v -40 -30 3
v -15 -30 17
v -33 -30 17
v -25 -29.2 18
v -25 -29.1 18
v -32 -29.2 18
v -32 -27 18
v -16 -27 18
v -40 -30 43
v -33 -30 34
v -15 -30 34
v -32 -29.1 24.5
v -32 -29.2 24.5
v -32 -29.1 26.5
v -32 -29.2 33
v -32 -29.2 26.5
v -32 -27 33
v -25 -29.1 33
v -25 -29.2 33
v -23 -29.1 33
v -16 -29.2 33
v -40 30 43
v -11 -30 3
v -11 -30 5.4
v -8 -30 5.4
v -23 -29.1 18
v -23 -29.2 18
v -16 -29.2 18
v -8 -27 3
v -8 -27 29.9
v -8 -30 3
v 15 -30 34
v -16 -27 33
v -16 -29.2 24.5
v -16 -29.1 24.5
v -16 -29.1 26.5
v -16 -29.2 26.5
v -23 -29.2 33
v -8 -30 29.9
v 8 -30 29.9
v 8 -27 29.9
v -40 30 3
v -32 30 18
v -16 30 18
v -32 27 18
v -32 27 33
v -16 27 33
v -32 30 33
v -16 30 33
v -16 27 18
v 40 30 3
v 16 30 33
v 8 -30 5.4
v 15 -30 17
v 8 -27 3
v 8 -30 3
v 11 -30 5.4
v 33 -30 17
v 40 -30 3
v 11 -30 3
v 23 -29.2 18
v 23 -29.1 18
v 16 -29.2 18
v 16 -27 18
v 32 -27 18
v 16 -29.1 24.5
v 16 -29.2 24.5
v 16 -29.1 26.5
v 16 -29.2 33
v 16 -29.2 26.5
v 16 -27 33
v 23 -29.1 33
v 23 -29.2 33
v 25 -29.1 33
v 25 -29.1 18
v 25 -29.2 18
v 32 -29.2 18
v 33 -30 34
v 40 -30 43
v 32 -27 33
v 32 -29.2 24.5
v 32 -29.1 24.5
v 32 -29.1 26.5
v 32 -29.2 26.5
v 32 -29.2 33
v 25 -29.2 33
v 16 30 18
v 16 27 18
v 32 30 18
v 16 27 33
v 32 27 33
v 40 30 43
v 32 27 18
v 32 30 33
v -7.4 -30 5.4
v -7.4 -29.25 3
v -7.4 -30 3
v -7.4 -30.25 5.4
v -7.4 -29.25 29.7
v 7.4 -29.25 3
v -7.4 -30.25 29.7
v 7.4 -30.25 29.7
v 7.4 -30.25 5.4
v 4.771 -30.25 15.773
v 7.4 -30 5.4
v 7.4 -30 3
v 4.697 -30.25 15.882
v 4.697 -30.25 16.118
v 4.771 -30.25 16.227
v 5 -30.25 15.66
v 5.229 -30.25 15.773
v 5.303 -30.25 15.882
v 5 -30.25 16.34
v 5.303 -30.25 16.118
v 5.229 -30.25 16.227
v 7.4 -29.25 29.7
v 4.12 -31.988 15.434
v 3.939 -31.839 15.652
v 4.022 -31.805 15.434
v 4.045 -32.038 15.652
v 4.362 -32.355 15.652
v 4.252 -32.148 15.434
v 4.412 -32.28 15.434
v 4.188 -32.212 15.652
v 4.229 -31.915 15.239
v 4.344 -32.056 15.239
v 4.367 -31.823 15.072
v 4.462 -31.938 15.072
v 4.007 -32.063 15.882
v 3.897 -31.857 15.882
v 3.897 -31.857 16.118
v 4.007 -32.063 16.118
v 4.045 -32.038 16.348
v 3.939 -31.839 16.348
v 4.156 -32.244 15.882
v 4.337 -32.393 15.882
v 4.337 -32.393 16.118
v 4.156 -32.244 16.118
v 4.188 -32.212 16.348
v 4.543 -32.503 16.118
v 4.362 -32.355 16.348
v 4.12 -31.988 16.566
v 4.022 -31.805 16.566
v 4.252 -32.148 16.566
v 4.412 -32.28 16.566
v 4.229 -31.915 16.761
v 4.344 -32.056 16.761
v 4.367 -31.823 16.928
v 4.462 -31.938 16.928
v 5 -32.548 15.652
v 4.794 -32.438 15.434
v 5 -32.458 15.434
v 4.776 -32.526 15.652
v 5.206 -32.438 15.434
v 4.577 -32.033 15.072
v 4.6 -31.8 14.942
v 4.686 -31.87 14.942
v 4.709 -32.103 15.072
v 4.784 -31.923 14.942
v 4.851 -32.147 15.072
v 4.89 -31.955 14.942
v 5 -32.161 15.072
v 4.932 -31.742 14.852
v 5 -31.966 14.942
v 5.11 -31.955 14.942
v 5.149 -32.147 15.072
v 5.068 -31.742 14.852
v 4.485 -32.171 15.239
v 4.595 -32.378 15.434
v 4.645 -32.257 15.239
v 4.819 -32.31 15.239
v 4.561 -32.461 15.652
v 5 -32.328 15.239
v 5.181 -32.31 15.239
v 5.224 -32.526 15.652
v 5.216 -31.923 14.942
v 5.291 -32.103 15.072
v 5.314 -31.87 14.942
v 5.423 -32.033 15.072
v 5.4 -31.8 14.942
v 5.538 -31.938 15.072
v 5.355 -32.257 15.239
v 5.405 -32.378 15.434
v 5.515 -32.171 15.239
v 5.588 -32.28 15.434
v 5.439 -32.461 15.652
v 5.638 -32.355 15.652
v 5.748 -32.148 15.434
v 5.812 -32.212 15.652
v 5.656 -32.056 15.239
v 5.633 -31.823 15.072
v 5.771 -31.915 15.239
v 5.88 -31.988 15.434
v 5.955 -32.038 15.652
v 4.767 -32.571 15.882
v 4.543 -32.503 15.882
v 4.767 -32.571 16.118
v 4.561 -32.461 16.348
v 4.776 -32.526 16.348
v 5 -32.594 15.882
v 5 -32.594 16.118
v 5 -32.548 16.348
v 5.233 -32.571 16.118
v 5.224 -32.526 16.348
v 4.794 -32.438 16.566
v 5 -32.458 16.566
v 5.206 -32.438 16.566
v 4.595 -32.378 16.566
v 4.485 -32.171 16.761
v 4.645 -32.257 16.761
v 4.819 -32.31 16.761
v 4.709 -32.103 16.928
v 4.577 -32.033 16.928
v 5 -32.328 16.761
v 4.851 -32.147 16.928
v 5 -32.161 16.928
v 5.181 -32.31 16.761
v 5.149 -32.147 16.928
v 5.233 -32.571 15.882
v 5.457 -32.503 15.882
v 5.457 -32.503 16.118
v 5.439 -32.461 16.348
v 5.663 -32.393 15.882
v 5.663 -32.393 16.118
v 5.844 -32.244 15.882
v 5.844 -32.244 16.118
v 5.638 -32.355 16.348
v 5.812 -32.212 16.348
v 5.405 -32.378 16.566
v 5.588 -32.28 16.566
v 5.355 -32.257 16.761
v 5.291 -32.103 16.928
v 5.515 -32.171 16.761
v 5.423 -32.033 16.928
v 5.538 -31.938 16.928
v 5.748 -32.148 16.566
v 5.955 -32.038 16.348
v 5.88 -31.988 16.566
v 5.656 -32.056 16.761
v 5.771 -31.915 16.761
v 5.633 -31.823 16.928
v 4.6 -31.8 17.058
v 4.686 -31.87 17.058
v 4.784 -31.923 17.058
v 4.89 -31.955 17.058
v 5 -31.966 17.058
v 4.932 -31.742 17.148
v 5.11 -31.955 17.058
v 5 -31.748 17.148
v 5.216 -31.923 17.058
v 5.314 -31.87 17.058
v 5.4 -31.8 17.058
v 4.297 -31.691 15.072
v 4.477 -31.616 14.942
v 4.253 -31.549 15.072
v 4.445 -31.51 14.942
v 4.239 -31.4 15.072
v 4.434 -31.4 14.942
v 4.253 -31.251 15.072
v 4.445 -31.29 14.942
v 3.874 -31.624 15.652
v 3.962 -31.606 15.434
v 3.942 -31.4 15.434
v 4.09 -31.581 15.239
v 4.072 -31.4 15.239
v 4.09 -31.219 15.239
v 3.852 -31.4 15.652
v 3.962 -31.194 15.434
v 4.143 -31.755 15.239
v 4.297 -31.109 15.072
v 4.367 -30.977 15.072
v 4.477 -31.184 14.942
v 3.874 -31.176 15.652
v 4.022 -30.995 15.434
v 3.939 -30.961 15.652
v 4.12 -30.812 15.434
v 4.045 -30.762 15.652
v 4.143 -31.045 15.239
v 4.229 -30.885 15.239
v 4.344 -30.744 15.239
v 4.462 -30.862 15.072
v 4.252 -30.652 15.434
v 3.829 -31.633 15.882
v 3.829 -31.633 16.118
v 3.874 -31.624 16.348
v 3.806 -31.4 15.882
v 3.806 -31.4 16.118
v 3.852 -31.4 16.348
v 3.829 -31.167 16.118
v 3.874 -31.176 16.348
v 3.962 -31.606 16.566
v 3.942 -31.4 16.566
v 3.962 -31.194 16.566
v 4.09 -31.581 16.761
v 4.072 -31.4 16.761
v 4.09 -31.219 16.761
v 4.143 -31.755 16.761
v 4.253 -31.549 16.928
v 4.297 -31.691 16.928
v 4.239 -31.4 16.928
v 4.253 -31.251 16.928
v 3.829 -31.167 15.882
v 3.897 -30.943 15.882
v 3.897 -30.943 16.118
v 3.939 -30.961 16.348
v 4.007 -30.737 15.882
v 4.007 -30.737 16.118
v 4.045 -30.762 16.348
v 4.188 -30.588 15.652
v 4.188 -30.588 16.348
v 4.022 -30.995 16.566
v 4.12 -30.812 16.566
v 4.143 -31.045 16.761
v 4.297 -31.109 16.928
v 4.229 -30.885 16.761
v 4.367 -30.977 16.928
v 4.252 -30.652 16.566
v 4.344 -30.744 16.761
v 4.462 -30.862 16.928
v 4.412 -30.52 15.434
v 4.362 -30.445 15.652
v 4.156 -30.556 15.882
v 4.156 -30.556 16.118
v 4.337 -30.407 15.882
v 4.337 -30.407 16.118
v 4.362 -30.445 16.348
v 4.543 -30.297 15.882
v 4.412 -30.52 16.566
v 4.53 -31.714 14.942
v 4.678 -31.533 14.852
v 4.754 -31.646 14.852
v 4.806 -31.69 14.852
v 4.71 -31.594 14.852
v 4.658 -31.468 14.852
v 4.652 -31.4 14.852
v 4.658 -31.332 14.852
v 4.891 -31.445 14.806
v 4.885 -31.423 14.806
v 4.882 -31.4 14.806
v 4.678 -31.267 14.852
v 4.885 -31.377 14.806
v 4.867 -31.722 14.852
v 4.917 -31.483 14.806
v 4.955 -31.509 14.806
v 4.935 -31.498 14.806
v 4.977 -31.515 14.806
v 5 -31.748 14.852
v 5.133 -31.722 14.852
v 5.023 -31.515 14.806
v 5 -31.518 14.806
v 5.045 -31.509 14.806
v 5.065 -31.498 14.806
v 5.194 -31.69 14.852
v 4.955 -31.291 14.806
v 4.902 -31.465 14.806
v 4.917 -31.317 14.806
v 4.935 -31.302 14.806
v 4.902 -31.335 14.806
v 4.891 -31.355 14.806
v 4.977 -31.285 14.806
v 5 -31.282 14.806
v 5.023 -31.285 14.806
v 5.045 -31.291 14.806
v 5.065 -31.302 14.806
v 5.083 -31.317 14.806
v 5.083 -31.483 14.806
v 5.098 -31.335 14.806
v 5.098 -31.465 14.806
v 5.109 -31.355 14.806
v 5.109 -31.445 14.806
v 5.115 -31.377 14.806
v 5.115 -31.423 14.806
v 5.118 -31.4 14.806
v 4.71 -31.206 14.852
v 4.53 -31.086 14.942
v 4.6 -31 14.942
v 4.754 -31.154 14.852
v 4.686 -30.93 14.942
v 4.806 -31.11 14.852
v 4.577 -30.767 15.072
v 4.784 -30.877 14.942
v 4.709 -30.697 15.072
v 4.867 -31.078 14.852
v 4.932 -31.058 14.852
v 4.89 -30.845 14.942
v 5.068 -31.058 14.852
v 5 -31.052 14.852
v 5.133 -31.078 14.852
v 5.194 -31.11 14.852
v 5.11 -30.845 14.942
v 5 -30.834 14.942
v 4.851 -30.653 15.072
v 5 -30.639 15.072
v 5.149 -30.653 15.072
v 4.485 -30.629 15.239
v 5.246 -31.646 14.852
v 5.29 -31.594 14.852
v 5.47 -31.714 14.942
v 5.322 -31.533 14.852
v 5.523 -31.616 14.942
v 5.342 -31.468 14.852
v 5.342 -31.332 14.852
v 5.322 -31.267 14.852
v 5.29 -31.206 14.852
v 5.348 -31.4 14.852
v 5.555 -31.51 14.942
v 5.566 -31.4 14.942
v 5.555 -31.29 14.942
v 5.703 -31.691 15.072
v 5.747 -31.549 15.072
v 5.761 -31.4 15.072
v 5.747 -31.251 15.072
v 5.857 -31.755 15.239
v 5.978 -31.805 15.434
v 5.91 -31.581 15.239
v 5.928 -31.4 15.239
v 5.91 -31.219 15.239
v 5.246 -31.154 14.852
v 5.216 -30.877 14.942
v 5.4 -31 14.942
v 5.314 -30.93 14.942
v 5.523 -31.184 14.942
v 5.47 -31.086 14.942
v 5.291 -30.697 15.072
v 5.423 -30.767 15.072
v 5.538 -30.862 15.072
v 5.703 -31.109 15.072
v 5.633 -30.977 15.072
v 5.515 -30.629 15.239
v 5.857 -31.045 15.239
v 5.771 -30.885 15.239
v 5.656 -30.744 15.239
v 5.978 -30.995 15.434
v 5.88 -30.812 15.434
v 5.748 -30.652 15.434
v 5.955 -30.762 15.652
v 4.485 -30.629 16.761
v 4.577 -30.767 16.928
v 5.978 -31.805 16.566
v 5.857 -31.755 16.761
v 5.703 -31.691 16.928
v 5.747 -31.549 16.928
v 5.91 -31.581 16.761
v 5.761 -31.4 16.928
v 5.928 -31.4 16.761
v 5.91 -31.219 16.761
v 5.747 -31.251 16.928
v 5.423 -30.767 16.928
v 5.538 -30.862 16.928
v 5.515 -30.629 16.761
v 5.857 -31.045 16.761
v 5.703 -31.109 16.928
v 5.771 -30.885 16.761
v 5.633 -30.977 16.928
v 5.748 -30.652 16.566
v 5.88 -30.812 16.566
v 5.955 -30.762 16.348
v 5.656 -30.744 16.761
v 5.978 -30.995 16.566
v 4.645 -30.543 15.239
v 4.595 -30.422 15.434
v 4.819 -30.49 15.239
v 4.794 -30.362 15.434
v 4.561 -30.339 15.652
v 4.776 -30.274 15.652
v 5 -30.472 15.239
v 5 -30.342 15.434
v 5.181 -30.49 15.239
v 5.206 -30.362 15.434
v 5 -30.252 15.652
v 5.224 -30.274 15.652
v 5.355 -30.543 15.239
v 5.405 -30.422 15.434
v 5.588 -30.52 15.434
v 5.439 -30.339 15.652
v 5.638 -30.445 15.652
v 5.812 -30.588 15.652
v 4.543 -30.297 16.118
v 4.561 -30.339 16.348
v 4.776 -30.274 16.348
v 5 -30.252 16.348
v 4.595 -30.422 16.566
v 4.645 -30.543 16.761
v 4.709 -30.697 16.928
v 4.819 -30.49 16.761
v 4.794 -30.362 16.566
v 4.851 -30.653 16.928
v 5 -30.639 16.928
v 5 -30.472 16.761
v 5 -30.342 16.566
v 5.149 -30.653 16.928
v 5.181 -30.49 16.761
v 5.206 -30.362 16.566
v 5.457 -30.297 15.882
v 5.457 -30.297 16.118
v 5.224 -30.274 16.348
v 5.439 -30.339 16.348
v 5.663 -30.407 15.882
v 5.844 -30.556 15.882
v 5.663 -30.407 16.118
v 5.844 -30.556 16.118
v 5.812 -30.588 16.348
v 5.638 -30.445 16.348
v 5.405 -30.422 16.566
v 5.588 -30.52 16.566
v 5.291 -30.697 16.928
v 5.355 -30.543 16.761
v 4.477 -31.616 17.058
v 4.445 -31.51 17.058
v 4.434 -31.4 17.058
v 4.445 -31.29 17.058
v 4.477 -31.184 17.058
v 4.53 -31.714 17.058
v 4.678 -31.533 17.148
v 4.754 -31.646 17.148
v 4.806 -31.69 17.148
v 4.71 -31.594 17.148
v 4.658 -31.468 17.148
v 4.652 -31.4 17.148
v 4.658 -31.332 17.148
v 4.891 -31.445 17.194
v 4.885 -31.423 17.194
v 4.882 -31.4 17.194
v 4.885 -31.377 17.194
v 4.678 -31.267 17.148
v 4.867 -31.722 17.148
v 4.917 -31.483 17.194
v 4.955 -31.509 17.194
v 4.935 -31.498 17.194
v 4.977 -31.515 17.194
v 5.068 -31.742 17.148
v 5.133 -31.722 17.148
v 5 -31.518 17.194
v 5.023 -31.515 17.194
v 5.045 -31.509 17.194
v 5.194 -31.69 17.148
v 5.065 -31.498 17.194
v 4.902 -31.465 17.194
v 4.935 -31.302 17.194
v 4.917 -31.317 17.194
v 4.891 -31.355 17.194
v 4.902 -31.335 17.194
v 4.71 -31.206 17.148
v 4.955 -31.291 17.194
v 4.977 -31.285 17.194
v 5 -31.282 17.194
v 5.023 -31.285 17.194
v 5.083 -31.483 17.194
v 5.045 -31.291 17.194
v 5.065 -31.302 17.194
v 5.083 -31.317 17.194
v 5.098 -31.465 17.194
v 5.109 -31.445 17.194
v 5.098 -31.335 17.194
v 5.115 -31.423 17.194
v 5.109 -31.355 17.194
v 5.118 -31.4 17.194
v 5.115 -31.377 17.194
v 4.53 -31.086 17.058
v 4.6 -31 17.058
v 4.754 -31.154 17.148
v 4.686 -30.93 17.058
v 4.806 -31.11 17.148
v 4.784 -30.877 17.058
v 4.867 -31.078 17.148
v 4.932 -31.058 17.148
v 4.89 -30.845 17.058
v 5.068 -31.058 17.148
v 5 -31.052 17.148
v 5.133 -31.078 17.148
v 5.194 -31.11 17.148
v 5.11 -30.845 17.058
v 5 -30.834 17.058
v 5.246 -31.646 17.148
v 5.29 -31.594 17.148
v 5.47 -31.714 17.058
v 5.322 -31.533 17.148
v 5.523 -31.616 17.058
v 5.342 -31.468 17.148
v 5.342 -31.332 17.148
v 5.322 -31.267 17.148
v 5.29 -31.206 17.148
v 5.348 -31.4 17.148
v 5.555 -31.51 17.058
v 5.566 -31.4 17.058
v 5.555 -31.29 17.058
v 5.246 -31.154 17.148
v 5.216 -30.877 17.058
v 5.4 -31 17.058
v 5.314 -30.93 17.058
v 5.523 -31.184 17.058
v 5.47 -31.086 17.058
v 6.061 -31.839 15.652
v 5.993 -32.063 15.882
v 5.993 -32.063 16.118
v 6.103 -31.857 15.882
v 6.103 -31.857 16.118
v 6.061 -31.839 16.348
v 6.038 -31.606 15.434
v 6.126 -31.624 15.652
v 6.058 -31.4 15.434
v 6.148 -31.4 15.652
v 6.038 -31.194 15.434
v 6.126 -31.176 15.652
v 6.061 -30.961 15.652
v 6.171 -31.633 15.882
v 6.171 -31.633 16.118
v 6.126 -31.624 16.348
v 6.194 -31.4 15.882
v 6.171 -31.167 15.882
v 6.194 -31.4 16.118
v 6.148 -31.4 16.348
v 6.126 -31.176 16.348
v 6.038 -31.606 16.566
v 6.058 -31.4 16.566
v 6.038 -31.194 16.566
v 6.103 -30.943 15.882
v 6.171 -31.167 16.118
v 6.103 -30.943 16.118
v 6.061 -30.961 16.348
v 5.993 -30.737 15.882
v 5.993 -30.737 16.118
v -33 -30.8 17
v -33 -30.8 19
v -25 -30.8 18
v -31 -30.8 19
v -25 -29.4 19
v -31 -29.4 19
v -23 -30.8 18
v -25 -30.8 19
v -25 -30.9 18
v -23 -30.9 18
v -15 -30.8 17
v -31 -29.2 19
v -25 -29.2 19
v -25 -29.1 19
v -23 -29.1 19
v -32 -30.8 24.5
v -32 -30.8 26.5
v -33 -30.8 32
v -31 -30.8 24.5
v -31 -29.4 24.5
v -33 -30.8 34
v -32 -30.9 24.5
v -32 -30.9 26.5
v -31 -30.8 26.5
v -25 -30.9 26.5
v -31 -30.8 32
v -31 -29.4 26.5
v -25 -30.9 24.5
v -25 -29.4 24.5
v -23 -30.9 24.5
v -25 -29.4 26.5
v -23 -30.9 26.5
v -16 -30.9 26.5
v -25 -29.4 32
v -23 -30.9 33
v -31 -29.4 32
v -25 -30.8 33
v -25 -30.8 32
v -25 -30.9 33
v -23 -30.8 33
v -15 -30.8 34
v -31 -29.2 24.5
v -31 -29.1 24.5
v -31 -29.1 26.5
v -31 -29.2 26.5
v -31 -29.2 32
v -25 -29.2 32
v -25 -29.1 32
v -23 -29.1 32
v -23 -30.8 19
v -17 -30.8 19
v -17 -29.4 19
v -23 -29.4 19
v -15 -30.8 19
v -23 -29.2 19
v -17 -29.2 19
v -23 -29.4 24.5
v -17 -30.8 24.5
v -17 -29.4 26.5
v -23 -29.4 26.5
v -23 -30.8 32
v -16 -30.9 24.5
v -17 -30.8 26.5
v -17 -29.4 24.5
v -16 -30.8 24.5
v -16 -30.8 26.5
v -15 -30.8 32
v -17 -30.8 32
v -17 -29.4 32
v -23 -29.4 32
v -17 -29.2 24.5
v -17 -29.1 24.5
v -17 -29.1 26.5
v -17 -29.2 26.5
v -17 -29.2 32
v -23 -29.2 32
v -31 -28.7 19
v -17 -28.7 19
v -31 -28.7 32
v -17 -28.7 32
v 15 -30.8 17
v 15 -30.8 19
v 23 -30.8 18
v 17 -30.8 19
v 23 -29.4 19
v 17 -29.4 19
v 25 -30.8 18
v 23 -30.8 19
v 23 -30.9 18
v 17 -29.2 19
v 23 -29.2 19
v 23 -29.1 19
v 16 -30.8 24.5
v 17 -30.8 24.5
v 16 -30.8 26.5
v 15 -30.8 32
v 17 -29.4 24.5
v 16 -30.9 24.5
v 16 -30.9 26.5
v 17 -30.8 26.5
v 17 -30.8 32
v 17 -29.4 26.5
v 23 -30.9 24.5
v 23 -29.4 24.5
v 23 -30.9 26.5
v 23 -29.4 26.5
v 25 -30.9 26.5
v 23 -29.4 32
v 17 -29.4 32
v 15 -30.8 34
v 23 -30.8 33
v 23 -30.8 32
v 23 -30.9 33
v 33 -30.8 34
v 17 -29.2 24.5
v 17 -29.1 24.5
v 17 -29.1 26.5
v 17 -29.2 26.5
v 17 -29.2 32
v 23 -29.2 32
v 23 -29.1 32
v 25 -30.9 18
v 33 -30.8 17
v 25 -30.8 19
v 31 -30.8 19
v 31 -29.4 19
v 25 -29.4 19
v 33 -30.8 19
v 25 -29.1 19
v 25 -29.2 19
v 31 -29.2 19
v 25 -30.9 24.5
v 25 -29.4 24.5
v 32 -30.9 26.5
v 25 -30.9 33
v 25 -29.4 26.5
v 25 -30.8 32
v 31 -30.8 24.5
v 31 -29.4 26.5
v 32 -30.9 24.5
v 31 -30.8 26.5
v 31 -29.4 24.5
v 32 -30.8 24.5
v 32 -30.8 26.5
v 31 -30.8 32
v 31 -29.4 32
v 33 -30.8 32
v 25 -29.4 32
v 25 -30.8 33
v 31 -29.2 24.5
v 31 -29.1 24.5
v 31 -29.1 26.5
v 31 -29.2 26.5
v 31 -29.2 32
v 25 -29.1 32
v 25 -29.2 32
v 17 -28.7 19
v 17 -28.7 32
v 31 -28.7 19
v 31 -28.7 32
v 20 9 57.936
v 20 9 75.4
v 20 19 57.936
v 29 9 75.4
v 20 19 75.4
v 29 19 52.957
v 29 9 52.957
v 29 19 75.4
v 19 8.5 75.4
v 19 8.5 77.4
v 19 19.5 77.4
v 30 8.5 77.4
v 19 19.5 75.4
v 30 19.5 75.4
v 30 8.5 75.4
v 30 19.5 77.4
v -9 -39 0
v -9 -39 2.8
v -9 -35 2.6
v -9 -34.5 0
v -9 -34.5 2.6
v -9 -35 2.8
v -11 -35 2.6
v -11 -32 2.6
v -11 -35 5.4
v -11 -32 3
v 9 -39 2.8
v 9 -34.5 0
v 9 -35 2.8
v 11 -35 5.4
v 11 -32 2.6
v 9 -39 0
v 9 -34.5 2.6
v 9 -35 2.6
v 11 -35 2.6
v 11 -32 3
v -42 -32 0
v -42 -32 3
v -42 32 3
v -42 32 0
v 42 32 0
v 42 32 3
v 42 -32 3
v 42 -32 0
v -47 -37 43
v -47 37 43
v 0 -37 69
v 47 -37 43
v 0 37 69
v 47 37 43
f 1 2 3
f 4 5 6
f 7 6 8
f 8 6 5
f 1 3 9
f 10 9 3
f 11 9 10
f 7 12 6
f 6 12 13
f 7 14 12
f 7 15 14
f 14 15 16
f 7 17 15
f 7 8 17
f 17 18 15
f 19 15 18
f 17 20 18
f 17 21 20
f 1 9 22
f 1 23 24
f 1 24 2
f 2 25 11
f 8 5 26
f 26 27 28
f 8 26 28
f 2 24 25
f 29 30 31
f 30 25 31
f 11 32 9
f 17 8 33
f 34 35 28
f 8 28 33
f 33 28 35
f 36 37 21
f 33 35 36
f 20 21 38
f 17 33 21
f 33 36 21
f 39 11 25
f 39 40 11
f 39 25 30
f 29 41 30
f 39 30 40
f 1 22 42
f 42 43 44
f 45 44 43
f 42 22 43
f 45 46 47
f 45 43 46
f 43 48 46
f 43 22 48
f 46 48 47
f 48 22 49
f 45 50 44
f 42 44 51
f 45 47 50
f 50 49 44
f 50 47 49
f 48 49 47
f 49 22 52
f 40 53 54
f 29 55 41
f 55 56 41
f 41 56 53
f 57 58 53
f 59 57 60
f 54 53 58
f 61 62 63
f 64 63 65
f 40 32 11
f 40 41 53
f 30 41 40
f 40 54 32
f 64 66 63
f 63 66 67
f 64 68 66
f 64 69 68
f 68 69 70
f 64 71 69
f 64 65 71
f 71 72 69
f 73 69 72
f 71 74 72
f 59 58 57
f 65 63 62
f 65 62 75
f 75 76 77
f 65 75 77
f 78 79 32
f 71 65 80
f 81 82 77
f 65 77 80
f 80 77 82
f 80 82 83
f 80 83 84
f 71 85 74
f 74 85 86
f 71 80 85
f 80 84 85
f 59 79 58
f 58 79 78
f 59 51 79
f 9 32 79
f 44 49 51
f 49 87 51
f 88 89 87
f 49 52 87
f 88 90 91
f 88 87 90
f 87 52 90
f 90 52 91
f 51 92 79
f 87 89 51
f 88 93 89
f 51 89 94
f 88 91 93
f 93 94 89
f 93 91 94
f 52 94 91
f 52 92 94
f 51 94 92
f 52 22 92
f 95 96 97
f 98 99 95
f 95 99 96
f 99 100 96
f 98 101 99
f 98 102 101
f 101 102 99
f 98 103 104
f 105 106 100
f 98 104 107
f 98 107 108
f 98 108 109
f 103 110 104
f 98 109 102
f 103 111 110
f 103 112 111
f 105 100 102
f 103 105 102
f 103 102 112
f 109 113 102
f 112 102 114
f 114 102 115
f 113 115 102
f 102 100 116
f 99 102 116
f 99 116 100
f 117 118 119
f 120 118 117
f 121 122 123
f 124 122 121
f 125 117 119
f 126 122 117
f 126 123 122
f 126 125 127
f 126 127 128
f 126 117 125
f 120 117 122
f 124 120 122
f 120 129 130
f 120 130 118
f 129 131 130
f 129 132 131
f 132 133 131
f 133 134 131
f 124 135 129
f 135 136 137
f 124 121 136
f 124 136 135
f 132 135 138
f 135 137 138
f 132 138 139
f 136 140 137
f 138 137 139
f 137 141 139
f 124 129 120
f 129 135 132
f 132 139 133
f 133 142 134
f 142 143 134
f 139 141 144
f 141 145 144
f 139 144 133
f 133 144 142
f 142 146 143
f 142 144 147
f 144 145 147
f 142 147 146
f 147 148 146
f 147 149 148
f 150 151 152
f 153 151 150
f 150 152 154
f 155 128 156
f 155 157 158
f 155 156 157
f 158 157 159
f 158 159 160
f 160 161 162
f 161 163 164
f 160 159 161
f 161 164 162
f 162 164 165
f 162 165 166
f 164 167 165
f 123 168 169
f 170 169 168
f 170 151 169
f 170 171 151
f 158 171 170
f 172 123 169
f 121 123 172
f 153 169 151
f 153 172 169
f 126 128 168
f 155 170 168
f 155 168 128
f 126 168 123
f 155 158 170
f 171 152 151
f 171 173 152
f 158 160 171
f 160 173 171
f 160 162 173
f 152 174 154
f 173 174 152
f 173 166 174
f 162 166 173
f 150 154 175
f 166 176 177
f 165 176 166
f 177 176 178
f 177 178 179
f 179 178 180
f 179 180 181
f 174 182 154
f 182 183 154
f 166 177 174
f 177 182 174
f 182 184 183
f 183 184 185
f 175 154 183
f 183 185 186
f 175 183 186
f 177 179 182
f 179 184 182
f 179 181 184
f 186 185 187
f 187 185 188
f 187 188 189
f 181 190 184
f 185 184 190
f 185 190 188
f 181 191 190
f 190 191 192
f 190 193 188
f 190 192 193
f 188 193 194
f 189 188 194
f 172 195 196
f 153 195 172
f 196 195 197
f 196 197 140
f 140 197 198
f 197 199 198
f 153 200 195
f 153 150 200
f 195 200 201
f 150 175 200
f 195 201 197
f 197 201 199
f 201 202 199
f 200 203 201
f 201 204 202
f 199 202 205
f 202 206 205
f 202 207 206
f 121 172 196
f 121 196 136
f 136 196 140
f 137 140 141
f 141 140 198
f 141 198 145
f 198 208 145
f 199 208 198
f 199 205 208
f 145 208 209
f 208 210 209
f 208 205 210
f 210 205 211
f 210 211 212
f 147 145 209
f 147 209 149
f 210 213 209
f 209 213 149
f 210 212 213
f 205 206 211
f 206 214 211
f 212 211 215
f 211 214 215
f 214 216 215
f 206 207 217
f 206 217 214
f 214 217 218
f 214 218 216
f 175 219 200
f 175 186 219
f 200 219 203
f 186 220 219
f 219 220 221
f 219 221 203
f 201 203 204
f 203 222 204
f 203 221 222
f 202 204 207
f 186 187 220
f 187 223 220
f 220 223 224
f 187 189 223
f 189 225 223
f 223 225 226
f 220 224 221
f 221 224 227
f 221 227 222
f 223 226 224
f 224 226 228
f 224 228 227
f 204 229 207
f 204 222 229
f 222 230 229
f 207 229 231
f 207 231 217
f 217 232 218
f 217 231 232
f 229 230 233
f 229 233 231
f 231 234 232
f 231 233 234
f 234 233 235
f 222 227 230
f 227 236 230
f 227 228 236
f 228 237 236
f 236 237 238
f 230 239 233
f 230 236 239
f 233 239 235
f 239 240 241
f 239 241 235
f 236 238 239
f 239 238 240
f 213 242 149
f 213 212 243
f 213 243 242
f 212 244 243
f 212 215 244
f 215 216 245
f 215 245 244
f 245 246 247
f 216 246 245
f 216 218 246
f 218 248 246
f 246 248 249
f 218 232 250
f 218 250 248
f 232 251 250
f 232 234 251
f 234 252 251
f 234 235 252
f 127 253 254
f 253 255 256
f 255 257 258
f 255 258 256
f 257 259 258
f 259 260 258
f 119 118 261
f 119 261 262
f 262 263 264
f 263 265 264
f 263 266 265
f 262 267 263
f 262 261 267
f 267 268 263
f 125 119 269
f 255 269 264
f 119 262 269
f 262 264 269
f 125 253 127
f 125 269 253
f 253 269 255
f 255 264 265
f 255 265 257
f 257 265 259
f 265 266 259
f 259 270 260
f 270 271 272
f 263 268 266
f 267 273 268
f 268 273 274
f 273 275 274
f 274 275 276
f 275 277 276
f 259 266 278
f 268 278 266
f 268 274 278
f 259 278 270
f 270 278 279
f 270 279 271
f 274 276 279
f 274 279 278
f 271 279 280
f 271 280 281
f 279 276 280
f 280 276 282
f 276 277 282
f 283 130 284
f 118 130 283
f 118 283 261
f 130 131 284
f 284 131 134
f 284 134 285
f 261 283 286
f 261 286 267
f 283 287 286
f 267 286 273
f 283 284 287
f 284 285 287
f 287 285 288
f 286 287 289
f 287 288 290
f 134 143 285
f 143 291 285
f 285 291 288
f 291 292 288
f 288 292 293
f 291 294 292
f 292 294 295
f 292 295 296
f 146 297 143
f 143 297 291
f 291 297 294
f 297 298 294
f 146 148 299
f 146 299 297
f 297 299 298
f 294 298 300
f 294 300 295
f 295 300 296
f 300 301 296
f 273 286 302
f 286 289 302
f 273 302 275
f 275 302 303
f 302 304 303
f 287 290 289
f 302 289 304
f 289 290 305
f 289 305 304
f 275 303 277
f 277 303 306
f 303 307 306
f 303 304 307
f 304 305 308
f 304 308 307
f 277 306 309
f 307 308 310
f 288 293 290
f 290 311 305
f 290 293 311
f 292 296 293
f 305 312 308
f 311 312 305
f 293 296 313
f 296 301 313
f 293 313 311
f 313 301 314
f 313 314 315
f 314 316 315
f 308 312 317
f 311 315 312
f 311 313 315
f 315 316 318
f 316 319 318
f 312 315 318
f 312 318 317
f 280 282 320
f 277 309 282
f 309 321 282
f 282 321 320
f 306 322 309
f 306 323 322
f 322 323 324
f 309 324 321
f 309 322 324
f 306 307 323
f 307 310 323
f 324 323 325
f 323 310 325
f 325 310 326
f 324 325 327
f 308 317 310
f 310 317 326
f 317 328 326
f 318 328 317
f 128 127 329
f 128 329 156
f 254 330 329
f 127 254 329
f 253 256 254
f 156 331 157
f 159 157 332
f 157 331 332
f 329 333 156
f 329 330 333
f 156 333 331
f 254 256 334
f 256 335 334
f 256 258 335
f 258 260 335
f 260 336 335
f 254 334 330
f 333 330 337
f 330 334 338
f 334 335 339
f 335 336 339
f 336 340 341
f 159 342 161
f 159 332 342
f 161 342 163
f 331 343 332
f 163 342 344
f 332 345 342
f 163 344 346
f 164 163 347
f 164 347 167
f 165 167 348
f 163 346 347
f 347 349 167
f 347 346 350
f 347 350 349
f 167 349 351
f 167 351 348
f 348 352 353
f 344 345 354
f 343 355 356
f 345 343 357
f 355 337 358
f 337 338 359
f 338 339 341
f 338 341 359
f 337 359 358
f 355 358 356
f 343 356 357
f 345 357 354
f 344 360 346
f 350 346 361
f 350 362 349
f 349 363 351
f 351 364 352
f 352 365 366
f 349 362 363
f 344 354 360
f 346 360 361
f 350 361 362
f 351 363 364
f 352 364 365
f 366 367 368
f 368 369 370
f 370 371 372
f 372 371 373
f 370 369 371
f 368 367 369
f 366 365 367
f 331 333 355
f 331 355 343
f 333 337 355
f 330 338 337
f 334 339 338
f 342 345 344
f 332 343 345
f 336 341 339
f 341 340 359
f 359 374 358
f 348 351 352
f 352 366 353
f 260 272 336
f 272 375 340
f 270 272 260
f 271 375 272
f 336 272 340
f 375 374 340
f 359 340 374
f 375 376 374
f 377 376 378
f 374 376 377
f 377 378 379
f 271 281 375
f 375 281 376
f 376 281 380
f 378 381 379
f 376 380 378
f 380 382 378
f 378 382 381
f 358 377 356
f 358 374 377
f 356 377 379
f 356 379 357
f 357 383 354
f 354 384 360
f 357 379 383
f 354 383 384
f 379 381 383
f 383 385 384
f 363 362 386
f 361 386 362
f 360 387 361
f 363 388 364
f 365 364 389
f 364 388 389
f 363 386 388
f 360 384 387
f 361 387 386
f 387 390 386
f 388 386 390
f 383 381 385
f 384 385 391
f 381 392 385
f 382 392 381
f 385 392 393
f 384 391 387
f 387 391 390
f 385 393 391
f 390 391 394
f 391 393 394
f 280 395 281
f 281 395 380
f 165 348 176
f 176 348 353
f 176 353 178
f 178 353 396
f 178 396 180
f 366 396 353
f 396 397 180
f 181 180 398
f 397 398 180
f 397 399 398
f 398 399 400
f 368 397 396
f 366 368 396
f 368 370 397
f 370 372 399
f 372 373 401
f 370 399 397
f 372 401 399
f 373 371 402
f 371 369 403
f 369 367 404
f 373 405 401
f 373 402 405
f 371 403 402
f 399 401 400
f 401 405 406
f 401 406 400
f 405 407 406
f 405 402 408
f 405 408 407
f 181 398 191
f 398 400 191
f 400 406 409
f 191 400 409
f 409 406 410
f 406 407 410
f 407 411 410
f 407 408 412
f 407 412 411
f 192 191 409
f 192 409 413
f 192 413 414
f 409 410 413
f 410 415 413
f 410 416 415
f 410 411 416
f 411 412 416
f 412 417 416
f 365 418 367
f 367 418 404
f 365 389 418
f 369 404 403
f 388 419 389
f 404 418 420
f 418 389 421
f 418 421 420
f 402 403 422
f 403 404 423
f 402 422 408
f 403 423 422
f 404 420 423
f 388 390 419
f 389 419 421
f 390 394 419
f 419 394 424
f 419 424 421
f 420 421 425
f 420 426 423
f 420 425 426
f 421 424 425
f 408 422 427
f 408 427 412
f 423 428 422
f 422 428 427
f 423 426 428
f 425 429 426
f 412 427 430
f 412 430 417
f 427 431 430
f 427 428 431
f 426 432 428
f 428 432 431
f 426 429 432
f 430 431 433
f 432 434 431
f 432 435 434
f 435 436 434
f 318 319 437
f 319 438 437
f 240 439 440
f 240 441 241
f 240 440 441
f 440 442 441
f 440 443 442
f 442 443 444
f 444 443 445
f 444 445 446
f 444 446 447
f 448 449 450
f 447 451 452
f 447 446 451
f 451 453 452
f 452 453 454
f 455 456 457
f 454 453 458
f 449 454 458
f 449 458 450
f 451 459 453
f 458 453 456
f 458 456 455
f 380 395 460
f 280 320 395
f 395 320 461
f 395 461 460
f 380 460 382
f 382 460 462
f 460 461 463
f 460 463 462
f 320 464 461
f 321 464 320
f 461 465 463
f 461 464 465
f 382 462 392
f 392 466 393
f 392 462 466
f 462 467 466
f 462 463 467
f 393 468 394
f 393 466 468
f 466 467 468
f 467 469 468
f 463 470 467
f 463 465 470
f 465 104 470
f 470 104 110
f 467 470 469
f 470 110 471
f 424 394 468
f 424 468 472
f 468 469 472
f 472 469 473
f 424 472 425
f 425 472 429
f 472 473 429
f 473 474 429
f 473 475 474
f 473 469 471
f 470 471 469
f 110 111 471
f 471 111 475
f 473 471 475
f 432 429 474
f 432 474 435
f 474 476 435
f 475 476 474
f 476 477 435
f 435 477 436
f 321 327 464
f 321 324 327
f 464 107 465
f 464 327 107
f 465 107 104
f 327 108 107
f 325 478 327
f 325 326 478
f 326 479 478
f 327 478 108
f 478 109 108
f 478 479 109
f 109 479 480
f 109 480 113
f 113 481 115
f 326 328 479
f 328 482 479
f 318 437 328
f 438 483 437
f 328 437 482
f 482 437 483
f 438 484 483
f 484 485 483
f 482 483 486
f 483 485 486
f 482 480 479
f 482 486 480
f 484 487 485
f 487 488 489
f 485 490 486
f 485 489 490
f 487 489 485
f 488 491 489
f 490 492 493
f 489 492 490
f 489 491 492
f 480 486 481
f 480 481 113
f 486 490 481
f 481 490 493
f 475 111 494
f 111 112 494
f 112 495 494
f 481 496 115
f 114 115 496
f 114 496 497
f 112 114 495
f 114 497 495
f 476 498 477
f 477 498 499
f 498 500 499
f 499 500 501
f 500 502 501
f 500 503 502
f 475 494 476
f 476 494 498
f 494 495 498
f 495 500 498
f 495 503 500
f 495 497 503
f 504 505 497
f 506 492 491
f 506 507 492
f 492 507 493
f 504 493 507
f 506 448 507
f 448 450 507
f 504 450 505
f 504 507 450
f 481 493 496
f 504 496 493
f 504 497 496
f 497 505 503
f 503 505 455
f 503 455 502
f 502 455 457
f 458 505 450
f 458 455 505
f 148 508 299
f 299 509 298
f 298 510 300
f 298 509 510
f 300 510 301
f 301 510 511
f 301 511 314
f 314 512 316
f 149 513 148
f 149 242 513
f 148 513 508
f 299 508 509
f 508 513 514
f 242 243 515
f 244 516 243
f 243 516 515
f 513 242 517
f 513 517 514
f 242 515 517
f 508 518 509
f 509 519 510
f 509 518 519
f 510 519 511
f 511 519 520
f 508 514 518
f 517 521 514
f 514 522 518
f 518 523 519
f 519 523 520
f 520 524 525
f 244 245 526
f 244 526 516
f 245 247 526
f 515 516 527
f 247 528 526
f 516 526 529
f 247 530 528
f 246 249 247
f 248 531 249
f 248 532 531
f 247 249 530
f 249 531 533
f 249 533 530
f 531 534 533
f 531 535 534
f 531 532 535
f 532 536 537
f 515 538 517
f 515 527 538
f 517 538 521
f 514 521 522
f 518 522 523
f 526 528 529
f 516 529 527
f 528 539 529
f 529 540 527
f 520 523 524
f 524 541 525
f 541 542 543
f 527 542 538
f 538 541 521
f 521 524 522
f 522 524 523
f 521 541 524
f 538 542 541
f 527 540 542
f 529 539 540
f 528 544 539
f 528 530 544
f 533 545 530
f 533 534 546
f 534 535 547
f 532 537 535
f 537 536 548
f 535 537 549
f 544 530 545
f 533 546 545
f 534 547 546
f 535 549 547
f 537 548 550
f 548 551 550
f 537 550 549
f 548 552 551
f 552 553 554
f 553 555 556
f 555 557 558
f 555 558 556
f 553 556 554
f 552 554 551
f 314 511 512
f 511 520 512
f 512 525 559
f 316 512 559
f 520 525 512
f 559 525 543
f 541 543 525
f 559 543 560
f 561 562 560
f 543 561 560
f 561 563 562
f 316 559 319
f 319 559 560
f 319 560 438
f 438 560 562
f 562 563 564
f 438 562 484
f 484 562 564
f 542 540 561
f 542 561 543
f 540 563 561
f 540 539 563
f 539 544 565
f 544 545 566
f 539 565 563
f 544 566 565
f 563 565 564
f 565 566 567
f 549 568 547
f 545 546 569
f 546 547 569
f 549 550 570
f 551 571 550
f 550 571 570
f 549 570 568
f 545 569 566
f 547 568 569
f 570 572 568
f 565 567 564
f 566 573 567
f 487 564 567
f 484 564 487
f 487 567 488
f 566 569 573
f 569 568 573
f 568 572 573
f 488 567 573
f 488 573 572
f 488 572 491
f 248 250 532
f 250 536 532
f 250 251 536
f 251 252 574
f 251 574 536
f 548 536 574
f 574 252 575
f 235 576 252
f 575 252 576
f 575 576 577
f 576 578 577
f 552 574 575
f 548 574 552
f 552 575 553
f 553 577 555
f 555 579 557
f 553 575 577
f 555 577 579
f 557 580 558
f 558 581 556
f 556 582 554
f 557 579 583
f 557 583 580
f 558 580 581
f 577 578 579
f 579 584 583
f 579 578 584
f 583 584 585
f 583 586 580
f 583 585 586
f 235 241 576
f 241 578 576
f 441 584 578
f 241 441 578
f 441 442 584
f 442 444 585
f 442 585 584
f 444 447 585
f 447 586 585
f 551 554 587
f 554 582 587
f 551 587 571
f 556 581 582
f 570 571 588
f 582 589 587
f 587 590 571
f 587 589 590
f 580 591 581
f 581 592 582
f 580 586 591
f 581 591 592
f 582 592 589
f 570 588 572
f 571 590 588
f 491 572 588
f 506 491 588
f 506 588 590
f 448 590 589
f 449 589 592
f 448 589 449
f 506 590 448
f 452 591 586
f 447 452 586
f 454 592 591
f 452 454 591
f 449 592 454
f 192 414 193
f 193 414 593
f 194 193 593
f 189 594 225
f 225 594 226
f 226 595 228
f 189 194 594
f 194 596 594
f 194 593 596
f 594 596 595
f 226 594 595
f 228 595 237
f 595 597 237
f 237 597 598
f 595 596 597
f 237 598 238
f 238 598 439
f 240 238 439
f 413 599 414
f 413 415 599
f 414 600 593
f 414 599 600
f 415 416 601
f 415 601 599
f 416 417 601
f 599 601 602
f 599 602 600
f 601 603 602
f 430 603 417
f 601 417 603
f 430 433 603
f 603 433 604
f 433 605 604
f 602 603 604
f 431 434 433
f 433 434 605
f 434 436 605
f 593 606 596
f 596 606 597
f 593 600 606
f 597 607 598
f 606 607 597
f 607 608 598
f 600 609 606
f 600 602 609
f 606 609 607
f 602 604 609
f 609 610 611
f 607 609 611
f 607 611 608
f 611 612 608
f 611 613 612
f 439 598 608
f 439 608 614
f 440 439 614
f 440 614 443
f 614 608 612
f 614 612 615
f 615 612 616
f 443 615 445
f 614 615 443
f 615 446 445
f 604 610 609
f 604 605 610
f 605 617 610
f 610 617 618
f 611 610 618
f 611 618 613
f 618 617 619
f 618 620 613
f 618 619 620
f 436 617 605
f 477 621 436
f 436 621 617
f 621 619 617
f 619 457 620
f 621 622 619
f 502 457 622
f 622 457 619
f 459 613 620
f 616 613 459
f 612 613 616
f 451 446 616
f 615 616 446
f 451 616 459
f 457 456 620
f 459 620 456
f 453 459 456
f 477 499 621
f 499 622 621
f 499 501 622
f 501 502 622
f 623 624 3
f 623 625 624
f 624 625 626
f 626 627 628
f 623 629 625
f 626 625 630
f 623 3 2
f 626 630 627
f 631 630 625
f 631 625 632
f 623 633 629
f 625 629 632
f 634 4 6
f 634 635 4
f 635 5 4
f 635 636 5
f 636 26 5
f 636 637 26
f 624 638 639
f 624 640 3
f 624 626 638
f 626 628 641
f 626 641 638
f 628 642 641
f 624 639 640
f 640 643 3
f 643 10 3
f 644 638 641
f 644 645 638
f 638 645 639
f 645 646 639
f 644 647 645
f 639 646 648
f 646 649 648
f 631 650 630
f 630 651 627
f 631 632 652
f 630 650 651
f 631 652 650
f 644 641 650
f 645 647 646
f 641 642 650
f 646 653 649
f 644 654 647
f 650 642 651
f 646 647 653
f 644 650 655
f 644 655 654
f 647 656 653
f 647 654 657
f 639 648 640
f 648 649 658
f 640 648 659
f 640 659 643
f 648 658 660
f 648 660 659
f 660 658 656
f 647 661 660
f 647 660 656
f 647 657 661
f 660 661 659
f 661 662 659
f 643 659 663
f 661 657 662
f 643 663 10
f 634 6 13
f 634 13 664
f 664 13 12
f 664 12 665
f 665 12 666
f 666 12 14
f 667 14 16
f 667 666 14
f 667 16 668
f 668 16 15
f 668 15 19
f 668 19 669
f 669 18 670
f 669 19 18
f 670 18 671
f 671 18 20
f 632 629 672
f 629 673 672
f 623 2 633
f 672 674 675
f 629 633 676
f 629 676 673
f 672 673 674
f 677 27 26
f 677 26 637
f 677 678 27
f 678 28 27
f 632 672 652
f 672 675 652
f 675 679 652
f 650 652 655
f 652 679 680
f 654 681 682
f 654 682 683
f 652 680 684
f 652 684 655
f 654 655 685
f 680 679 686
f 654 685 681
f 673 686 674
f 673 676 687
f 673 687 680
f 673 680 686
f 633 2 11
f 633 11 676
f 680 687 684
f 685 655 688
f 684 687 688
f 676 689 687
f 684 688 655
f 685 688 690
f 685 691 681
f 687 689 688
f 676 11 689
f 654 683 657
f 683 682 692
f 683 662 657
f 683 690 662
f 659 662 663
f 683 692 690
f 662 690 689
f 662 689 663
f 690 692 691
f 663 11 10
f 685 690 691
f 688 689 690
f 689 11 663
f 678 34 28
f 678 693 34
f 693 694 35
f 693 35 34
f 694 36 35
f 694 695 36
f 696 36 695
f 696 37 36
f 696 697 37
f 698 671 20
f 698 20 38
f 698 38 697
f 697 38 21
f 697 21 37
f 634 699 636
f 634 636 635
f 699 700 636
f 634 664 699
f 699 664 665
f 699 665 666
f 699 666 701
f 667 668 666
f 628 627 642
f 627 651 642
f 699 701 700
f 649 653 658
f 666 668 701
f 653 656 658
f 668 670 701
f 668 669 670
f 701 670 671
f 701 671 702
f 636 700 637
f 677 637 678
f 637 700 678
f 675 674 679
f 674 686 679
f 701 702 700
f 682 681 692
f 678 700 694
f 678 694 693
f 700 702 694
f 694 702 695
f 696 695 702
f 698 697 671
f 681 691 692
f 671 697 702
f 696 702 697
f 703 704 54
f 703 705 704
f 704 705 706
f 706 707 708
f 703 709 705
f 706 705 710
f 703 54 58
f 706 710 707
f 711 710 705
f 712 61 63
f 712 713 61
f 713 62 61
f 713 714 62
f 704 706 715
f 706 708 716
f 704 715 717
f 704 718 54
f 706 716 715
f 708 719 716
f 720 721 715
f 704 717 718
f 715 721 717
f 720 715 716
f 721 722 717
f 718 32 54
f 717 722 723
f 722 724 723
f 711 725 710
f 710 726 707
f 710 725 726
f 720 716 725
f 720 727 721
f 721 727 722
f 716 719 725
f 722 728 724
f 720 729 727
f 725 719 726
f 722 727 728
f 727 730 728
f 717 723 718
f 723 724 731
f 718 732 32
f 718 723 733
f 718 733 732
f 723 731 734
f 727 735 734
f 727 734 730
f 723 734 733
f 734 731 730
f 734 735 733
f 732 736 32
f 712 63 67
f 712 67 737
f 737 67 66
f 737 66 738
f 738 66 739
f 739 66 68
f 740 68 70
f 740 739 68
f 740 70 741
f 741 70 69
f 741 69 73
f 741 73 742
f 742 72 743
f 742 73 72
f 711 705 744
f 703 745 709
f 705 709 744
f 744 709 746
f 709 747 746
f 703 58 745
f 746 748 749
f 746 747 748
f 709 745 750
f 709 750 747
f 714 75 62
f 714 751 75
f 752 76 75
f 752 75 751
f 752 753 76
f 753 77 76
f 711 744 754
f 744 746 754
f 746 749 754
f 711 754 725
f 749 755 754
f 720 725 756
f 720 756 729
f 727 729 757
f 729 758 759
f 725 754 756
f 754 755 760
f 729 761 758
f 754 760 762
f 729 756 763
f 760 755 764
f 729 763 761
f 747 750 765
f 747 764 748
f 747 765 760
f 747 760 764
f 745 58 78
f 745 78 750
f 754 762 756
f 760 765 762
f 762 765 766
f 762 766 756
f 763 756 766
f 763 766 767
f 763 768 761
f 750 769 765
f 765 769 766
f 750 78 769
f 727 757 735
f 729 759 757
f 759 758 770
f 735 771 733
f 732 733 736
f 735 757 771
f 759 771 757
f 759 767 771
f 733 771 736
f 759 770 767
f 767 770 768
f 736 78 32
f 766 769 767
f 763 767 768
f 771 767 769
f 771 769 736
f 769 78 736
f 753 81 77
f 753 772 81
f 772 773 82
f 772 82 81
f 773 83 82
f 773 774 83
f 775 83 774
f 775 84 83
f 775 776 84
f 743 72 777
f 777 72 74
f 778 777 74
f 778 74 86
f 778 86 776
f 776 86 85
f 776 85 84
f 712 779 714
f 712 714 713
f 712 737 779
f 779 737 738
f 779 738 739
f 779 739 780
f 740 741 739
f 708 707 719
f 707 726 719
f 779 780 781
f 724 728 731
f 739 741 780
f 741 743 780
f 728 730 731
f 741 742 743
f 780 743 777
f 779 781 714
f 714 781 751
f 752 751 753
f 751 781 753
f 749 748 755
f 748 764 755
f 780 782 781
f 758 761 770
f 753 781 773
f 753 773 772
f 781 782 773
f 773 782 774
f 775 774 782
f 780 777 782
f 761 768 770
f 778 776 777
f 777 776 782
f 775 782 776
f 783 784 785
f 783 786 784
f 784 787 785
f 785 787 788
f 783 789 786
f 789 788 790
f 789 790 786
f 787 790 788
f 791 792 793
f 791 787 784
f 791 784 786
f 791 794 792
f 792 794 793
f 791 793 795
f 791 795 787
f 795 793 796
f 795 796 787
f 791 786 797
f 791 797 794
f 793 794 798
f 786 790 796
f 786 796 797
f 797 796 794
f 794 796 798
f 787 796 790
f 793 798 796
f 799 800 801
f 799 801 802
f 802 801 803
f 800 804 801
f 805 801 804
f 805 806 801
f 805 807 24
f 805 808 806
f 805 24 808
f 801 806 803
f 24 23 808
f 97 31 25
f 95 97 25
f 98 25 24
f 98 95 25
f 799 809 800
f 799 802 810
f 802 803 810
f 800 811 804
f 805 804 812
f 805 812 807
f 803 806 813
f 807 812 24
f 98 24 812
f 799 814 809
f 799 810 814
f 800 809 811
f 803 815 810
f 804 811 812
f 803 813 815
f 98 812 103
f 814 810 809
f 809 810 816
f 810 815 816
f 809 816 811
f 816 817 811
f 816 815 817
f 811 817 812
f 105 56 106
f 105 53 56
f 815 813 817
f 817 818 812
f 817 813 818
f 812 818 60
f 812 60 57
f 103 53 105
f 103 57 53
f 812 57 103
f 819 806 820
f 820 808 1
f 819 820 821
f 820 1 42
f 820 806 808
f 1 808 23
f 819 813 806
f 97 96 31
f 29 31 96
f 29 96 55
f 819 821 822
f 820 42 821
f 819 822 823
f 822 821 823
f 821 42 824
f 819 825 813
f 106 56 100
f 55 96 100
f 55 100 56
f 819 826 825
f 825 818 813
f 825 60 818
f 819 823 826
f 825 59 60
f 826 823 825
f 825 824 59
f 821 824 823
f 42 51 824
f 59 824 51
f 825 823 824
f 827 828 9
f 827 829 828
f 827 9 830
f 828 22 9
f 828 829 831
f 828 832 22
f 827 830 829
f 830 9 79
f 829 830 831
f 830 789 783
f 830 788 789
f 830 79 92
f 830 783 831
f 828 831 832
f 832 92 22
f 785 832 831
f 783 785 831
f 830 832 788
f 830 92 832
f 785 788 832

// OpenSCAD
// Parametric gable-roof house, dimensions in millimetres.
$fn = 32;

house_width = 80;
house_depth = 60;
wall_height = 40;
wall_thickness = 2;
roof_overhang = 7;
roof_rise = 24;
base_thickness = 3;

front_y = -house_depth / 2;
door_width = 16;
door_height = 27;
window_width = 16;
window_height = 15;
window_sill = 15;
window_centers = [-24, 24];

module gable_volume() {
    translate([0, house_depth, 0])
        rotate([90, 0, 0])
            linear_extrude(height = house_depth)
                polygon(points = [
                    [-house_width / 2, wall_height],
                    [ house_width / 2, wall_height],
                    [0, wall_height + roof_rise]
                ]);
}

module house_shell() {
    difference() {
        union() {
            translate([-house_width / 2, front_y, base_thickness])
                cube([house_width, house_depth, wall_height]);
            translate([0, front_y, base_thickness])
                gable_volume();
        }

        // Front entrance and two front windows.
        translate([-door_width / 2, front_y - 1, base_thickness - 0.1])
            cube([door_width, wall_thickness + 2, door_height]);
        for (x = window_centers)
            translate([x - window_width / 2, front_y - 1,
                base_thickness + window_sill])
                cube([window_width, wall_thickness + 2, window_height]);

        // Matching windows on the back wall.
        for (x = window_centers)
            translate([x - window_width / 2, house_depth / 2 - wall_thickness - 1,
                base_thickness + window_sill])
                cube([window_width, wall_thickness + 2, window_height]);
    }
}

module roof() {
    color([0.48, 0.12, 0.09])
        translate([0, house_depth / 2 + roof_overhang, base_thickness])
            rotate([90, 0, 0])
                linear_extrude(height = house_depth + 2 * roof_overhang)
                    polygon(points = [
                        [-house_width / 2 - roof_overhang, wall_height],
                        [ house_width / 2 + roof_overhang, wall_height],
                        [0, wall_height + roof_rise + 2]
                    ]);
}

module front_door() {
    color([0.40, 0.20, 0.09])
        translate([-door_width / 2 + 0.6, front_y - 0.25, base_thickness])
            cube([door_width - 1.2, 1, door_height - 0.3]);
    color([0.86, 0.66, 0.22])
        translate([door_width / 2 - 3, front_y - 1.4, base_thickness + 13])
            sphere(r = 1.2);
}

module front_window(x) {
    color([0.22, 0.62, 0.82])
        translate([x - window_width / 2 + 1, front_y + 0.6,
            base_thickness + window_sill + 1])
            cube([window_width - 2, 0.7, window_height - 2]);

    color([0.93, 0.78, 0.52]) {
        translate([x - window_width / 2 - 1, front_y - 0.8,
            base_thickness + window_sill - 1])
            cube([2, 1.6, window_height + 2]);
        translate([x + window_width / 2 - 1, front_y - 0.8,
            base_thickness + window_sill - 1])
            cube([2, 1.6, window_height + 2]);
        translate([x - window_width / 2 - 1, front_y - 0.8,
            base_thickness + window_sill - 1])
            cube([window_width + 2, 1.6, 2]);
        translate([x - window_width / 2 - 1, front_y - 0.8,
            base_thickness + window_sill + window_height - 1])
            cube([window_width + 2, 1.6, 2]);
        translate([x - 1, front_y - 0.9,
            base_thickness + window_sill])
            cube([2, 1.8, window_height]);
        translate([x - window_width / 2, front_y - 0.9,
            base_thickness + window_sill + window_height / 2 - 1])
            cube([window_width, 1.8, 2]);
    }
}

module chimney() {
    color([0.62, 0.24, 0.17])
        translate([20, 9, base_thickness + wall_height + roof_rise * 0.35])
            cube([9, 10, 25]);
    color([0.35, 0.15, 0.12])
        translate([19, 8.5, base_thickness + wall_height + roof_rise * 0.35 + 24])
            cube([11, 11, 2]);
}

module entry_steps() {
    color([0.58, 0.57, 0.52]) {
        translate([-11, front_y - 5, base_thickness - 0.4])
            cube([22, 5, 2.8]);
        translate([-9, front_y - 9, 0])
            cube([18, 4.5, 2.8]);
    }
}

module house() {
    color([0.91, 0.80, 0.62])
        translate([-house_width / 2 - 2, -house_depth / 2 - 2, 0])
            cube([house_width + 4, house_depth + 4, base_thickness]);

    color([0.88, 0.72, 0.52])
        house_shell();

    roof();
    front_door();
    for (x = window_centers)
        front_window(x);
    chimney();
    entry_steps();
}

house();
